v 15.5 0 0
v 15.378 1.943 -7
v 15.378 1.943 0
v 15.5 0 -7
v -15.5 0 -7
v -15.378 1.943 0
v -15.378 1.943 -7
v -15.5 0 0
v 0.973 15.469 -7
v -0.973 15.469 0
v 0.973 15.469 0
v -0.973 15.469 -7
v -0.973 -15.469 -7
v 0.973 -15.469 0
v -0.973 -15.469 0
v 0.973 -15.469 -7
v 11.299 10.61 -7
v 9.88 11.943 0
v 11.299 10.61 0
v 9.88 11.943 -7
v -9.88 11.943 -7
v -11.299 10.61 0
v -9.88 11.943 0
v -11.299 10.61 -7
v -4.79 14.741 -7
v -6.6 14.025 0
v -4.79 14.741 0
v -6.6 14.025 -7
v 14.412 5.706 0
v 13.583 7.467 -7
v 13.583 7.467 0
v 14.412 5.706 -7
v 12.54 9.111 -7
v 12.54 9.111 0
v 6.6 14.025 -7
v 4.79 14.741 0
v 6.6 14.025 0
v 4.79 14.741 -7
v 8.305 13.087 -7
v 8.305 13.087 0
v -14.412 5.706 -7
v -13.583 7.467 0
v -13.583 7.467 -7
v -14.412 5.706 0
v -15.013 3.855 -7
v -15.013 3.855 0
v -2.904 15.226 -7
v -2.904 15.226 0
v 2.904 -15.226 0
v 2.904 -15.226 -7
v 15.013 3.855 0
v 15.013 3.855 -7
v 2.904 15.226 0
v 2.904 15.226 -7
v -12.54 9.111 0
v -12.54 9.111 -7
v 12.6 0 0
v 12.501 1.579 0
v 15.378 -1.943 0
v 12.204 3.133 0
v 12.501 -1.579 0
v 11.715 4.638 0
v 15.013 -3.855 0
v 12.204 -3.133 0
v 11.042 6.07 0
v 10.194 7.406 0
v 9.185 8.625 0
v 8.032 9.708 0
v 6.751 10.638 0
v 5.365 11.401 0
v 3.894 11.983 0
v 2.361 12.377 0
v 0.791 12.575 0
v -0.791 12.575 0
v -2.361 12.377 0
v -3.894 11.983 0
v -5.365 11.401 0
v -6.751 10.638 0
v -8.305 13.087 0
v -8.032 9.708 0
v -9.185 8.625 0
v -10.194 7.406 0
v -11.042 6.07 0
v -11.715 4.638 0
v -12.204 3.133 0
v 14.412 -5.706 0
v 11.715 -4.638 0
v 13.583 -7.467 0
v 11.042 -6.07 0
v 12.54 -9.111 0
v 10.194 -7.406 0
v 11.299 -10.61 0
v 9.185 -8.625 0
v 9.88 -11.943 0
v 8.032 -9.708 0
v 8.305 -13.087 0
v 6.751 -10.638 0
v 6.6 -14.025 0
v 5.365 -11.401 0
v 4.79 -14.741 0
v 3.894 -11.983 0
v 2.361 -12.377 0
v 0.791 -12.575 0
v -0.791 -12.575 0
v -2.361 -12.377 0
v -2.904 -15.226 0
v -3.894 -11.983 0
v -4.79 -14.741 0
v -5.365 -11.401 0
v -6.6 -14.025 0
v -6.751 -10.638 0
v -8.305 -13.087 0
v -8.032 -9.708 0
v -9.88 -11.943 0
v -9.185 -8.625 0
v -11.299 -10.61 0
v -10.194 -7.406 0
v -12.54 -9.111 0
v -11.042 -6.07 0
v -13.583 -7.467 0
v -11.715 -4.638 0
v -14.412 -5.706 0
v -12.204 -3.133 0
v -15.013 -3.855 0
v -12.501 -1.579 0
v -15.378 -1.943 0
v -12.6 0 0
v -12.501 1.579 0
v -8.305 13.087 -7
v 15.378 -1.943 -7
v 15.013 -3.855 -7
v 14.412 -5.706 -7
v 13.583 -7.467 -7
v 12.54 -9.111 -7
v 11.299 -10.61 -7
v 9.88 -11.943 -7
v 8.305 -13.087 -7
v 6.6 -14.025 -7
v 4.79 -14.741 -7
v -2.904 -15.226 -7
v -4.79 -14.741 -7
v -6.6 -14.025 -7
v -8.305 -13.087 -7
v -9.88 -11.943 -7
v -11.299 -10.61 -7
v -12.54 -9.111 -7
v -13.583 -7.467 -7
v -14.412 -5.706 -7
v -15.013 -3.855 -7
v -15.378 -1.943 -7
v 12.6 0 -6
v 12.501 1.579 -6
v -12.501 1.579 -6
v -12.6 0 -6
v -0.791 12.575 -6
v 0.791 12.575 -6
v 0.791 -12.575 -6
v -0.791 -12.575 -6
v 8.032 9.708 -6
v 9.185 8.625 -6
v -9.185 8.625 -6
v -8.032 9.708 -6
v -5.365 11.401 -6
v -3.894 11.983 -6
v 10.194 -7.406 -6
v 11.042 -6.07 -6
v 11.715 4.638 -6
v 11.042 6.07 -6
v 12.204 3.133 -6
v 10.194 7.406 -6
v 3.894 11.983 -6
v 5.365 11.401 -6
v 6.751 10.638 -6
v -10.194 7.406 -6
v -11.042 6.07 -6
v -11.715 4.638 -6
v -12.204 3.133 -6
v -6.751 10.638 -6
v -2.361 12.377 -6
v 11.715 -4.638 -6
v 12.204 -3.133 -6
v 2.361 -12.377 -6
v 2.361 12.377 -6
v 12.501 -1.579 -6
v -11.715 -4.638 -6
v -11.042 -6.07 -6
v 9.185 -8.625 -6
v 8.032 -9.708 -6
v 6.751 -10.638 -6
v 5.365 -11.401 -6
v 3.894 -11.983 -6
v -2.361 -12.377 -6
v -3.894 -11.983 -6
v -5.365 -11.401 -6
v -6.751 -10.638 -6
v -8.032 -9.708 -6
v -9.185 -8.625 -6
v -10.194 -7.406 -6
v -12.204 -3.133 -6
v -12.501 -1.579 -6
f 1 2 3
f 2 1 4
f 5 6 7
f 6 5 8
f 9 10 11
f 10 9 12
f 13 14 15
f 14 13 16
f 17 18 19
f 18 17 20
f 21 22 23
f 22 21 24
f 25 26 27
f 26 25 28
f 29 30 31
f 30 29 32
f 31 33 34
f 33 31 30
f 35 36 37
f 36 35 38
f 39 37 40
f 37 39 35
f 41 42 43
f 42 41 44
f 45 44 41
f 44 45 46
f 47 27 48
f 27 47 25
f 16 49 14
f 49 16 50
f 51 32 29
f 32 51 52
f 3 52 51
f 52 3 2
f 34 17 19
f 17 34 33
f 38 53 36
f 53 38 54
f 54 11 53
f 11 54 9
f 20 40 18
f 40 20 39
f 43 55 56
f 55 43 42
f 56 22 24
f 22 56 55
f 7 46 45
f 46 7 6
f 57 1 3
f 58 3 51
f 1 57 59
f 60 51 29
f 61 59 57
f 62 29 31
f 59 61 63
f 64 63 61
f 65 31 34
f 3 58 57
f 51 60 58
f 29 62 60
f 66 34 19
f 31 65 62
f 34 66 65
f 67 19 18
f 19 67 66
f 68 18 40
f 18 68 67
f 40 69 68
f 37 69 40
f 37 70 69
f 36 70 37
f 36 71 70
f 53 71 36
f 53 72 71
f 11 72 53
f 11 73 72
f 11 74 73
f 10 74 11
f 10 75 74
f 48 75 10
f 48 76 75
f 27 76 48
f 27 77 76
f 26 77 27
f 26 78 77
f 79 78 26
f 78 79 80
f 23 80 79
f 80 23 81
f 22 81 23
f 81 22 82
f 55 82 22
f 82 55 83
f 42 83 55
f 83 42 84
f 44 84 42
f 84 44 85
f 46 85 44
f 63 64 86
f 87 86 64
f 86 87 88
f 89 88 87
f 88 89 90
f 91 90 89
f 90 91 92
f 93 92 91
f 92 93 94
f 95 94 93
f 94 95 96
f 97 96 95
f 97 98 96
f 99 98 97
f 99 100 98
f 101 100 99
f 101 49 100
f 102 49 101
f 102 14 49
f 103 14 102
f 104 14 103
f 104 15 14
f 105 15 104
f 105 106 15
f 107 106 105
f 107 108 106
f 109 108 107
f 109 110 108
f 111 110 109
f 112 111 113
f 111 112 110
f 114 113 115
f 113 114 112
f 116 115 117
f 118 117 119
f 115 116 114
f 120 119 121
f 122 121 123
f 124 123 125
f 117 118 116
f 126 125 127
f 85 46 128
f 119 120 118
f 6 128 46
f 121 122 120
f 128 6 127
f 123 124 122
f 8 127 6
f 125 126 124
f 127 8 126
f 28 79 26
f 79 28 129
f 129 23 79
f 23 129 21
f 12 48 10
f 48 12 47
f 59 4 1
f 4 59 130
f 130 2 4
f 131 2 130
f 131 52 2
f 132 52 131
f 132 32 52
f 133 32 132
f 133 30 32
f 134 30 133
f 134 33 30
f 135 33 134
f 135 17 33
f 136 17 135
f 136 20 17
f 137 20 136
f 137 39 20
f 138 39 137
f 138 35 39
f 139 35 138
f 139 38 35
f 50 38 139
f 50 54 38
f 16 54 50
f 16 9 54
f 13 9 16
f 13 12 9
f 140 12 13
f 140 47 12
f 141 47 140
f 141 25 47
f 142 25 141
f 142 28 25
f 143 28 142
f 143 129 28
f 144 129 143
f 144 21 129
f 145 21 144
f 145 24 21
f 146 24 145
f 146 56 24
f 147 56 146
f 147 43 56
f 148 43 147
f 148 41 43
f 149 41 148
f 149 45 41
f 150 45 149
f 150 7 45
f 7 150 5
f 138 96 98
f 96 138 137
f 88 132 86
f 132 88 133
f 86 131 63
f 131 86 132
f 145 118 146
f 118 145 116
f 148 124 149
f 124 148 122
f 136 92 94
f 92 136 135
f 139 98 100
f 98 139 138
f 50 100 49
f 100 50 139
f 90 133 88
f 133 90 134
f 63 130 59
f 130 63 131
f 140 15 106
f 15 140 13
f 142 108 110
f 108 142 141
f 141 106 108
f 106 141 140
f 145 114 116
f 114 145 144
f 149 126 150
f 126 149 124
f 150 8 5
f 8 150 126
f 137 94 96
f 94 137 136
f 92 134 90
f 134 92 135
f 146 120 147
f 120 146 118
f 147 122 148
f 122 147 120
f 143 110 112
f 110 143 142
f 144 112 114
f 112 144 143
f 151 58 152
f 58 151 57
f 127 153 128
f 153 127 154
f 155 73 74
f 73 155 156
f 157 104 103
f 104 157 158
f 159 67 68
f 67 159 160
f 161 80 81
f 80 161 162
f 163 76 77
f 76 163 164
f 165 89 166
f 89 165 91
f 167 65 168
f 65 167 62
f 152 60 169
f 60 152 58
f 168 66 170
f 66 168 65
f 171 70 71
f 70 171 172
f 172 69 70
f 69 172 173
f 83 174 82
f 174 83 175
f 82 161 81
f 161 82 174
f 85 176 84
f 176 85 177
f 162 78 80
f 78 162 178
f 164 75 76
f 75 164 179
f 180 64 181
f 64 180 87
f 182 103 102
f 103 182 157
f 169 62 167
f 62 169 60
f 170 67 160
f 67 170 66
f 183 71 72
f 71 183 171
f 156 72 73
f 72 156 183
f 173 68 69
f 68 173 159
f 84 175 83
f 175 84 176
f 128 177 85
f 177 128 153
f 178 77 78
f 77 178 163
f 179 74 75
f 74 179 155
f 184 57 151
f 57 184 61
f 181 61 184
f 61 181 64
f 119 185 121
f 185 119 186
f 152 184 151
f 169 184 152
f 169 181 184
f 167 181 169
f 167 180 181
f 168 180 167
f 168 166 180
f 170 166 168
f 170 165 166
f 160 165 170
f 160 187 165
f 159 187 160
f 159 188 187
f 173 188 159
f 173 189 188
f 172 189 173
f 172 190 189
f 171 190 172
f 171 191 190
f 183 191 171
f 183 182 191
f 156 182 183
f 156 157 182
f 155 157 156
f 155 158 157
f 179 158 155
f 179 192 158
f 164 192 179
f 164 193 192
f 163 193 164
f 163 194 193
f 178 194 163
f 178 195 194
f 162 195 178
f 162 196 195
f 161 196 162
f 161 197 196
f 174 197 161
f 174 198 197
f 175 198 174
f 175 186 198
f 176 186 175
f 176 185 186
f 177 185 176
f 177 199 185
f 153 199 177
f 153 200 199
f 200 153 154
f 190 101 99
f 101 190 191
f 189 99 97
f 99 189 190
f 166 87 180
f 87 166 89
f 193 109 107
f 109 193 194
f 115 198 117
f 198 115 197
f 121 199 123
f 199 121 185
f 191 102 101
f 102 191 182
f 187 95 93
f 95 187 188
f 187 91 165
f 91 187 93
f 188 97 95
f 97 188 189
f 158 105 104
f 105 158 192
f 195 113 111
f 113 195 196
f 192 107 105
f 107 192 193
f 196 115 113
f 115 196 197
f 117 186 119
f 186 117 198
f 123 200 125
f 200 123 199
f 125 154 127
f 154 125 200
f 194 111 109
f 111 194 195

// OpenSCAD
$fn = 50;


difference() {
	union() {
		translate(v = [0, 0, -7.0000000000]) {
			cylinder(h = 7, r = 15.5000000000);
		}
	}
	union() {
		#translate(v = [0, 0, -6.0000000000]) {
			cylinder(h = 6, r = 12.6000000000);
		}
	}
}
